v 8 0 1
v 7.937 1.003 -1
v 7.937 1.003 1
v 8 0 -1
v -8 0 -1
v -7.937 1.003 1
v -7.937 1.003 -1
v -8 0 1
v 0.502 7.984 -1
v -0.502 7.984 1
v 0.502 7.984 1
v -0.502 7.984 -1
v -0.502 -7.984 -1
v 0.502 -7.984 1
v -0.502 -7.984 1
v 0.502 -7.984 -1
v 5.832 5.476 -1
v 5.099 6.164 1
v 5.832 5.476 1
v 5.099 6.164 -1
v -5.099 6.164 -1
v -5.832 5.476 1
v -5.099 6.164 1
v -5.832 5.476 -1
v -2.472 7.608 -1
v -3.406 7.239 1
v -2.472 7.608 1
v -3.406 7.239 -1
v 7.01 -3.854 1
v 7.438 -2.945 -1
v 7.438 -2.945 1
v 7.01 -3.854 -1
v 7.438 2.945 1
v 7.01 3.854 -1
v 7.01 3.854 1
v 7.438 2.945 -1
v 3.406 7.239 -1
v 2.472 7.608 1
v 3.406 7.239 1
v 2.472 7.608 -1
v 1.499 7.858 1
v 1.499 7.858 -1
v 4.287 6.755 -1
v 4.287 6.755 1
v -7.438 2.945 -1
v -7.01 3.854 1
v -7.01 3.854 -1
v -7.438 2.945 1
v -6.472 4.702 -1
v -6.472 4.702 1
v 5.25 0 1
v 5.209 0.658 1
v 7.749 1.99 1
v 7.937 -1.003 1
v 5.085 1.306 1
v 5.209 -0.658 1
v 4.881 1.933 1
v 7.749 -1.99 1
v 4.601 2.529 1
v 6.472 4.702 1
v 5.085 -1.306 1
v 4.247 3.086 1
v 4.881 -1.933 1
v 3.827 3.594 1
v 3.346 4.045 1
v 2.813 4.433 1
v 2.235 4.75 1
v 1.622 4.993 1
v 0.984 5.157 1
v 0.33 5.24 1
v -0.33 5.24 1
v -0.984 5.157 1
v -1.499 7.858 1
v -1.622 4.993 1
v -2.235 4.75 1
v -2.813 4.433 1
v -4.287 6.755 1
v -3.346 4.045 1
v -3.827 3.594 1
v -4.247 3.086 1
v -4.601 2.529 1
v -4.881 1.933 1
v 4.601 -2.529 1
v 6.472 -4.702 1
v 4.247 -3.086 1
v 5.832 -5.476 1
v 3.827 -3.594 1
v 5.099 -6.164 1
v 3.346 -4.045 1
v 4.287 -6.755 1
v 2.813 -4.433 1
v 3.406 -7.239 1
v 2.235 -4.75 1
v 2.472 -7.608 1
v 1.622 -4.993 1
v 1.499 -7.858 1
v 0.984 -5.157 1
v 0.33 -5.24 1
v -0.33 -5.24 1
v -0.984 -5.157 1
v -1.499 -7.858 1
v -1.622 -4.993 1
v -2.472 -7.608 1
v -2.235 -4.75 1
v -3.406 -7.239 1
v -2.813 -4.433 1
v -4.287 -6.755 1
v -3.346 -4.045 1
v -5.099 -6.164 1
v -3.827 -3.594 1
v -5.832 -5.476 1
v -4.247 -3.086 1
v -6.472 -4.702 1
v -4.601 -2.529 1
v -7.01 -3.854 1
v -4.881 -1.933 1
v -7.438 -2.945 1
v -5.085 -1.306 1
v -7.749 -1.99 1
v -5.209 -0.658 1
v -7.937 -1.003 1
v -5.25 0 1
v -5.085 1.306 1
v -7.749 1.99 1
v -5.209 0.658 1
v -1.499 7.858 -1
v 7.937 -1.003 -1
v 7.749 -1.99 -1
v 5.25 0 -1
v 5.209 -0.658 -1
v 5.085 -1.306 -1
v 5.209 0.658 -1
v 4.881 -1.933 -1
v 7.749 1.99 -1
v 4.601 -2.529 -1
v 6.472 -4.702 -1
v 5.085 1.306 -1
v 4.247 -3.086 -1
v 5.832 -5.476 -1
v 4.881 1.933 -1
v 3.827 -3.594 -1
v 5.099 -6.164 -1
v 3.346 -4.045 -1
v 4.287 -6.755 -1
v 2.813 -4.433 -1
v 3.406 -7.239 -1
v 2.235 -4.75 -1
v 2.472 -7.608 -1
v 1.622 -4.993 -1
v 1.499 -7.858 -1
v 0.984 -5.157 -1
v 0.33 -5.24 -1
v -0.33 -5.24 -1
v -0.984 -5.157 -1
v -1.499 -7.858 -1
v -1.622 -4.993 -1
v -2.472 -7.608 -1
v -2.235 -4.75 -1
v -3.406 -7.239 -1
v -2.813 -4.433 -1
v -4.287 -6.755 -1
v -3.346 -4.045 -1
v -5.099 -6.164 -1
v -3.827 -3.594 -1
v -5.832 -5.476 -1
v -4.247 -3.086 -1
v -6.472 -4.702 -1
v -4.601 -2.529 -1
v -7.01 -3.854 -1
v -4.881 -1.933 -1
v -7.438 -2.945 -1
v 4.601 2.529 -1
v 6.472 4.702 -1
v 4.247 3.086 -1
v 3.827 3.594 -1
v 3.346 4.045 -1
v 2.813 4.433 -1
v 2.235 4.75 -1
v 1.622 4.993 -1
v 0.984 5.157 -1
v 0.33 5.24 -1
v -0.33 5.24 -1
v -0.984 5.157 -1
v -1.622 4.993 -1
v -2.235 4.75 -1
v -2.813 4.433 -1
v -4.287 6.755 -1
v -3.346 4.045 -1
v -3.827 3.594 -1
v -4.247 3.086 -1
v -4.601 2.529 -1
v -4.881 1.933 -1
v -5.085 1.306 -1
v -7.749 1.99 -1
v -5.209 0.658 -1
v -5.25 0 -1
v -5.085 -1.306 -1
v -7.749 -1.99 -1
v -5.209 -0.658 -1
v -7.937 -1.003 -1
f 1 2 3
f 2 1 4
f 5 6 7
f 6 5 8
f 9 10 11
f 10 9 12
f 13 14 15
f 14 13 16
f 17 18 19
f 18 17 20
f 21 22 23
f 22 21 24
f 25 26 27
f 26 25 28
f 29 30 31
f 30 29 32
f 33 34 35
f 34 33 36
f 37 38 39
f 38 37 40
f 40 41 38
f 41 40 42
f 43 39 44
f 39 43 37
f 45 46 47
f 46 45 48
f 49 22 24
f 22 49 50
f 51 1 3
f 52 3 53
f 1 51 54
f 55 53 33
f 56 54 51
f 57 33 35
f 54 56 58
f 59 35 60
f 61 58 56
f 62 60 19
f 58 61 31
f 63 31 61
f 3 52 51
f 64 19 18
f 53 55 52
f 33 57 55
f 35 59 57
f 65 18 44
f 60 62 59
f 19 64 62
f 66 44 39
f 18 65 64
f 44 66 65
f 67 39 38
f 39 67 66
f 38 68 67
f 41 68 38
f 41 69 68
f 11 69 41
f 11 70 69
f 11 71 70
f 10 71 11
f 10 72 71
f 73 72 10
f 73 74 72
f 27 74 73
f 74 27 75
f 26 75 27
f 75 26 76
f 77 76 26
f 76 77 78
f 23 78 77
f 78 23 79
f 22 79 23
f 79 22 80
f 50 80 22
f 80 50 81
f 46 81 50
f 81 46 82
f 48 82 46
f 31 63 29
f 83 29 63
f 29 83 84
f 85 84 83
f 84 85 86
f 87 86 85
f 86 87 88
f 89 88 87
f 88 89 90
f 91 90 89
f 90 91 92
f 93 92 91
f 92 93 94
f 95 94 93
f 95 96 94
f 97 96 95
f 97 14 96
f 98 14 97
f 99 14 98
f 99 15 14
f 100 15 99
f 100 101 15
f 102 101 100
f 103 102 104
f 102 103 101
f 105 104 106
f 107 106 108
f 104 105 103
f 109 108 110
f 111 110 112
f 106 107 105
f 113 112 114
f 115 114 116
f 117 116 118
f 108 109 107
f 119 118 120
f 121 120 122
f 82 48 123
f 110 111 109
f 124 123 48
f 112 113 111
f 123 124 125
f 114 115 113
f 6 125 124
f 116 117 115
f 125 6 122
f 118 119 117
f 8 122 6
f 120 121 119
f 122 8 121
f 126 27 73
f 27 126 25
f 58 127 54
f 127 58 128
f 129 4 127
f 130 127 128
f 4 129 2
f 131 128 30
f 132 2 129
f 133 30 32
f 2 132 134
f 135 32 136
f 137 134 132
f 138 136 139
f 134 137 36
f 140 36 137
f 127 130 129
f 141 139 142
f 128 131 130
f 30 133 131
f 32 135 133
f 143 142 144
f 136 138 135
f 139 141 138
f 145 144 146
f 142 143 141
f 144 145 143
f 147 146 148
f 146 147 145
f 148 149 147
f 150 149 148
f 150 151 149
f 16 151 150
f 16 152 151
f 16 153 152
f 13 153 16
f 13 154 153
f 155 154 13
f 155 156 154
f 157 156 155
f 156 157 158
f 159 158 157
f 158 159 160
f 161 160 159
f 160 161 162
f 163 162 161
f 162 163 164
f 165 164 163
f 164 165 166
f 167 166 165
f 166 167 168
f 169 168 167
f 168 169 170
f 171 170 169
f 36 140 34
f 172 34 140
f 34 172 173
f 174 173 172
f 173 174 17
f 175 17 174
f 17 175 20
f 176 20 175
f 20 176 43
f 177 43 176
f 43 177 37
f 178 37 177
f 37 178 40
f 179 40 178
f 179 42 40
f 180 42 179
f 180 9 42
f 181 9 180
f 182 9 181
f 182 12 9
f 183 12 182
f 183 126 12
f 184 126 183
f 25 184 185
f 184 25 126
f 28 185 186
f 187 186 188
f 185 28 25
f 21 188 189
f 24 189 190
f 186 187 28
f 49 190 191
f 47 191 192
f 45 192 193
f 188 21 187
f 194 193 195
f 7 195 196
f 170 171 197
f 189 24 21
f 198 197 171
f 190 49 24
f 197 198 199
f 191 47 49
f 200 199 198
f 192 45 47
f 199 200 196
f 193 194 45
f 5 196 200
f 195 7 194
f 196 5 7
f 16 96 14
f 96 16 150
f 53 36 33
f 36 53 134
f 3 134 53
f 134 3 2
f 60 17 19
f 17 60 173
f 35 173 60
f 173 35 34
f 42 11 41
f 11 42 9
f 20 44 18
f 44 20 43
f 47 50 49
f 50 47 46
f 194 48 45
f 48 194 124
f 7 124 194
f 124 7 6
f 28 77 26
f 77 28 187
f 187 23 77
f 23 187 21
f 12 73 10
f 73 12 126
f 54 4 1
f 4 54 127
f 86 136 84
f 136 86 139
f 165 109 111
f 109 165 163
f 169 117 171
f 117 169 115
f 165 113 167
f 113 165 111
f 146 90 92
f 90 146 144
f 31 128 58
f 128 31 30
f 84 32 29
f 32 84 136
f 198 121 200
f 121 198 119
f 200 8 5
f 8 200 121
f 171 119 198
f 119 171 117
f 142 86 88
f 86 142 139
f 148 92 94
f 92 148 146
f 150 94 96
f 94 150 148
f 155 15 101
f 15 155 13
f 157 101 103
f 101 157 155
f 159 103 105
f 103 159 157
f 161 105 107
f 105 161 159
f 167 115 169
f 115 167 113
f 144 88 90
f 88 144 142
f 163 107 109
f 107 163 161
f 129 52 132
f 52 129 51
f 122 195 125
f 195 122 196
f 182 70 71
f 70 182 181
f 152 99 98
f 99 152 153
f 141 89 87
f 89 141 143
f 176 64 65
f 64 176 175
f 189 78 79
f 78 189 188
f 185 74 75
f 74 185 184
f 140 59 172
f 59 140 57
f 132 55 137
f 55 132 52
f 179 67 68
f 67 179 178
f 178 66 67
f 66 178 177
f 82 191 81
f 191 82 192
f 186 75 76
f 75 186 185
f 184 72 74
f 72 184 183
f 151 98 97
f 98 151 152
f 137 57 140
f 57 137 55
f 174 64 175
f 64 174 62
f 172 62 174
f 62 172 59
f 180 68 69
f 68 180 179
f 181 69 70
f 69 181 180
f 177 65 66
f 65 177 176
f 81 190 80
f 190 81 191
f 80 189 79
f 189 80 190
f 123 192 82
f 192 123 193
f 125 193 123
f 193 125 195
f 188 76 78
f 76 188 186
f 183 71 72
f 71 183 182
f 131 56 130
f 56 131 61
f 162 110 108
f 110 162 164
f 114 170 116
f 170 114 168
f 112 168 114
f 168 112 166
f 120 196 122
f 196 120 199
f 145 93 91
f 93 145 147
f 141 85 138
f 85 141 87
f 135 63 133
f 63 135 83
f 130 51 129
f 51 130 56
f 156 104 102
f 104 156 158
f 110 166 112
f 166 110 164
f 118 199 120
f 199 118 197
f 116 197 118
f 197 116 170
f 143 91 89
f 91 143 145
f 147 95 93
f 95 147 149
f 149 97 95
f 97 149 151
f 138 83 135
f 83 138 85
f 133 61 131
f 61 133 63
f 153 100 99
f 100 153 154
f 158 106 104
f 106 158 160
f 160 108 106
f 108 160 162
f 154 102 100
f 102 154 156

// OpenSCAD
$fn = 50;


difference() {
	union() {
		translate(v = [0, 0, -1.0000000000]) {
			cylinder(h = 2, r = 8.0000000000);
		}
	}
	union() {
		translate(v = [0, 0, -100.0000000000]) {
			cylinder(h = 200, r = 5.2500000000);
		}
	}
}
